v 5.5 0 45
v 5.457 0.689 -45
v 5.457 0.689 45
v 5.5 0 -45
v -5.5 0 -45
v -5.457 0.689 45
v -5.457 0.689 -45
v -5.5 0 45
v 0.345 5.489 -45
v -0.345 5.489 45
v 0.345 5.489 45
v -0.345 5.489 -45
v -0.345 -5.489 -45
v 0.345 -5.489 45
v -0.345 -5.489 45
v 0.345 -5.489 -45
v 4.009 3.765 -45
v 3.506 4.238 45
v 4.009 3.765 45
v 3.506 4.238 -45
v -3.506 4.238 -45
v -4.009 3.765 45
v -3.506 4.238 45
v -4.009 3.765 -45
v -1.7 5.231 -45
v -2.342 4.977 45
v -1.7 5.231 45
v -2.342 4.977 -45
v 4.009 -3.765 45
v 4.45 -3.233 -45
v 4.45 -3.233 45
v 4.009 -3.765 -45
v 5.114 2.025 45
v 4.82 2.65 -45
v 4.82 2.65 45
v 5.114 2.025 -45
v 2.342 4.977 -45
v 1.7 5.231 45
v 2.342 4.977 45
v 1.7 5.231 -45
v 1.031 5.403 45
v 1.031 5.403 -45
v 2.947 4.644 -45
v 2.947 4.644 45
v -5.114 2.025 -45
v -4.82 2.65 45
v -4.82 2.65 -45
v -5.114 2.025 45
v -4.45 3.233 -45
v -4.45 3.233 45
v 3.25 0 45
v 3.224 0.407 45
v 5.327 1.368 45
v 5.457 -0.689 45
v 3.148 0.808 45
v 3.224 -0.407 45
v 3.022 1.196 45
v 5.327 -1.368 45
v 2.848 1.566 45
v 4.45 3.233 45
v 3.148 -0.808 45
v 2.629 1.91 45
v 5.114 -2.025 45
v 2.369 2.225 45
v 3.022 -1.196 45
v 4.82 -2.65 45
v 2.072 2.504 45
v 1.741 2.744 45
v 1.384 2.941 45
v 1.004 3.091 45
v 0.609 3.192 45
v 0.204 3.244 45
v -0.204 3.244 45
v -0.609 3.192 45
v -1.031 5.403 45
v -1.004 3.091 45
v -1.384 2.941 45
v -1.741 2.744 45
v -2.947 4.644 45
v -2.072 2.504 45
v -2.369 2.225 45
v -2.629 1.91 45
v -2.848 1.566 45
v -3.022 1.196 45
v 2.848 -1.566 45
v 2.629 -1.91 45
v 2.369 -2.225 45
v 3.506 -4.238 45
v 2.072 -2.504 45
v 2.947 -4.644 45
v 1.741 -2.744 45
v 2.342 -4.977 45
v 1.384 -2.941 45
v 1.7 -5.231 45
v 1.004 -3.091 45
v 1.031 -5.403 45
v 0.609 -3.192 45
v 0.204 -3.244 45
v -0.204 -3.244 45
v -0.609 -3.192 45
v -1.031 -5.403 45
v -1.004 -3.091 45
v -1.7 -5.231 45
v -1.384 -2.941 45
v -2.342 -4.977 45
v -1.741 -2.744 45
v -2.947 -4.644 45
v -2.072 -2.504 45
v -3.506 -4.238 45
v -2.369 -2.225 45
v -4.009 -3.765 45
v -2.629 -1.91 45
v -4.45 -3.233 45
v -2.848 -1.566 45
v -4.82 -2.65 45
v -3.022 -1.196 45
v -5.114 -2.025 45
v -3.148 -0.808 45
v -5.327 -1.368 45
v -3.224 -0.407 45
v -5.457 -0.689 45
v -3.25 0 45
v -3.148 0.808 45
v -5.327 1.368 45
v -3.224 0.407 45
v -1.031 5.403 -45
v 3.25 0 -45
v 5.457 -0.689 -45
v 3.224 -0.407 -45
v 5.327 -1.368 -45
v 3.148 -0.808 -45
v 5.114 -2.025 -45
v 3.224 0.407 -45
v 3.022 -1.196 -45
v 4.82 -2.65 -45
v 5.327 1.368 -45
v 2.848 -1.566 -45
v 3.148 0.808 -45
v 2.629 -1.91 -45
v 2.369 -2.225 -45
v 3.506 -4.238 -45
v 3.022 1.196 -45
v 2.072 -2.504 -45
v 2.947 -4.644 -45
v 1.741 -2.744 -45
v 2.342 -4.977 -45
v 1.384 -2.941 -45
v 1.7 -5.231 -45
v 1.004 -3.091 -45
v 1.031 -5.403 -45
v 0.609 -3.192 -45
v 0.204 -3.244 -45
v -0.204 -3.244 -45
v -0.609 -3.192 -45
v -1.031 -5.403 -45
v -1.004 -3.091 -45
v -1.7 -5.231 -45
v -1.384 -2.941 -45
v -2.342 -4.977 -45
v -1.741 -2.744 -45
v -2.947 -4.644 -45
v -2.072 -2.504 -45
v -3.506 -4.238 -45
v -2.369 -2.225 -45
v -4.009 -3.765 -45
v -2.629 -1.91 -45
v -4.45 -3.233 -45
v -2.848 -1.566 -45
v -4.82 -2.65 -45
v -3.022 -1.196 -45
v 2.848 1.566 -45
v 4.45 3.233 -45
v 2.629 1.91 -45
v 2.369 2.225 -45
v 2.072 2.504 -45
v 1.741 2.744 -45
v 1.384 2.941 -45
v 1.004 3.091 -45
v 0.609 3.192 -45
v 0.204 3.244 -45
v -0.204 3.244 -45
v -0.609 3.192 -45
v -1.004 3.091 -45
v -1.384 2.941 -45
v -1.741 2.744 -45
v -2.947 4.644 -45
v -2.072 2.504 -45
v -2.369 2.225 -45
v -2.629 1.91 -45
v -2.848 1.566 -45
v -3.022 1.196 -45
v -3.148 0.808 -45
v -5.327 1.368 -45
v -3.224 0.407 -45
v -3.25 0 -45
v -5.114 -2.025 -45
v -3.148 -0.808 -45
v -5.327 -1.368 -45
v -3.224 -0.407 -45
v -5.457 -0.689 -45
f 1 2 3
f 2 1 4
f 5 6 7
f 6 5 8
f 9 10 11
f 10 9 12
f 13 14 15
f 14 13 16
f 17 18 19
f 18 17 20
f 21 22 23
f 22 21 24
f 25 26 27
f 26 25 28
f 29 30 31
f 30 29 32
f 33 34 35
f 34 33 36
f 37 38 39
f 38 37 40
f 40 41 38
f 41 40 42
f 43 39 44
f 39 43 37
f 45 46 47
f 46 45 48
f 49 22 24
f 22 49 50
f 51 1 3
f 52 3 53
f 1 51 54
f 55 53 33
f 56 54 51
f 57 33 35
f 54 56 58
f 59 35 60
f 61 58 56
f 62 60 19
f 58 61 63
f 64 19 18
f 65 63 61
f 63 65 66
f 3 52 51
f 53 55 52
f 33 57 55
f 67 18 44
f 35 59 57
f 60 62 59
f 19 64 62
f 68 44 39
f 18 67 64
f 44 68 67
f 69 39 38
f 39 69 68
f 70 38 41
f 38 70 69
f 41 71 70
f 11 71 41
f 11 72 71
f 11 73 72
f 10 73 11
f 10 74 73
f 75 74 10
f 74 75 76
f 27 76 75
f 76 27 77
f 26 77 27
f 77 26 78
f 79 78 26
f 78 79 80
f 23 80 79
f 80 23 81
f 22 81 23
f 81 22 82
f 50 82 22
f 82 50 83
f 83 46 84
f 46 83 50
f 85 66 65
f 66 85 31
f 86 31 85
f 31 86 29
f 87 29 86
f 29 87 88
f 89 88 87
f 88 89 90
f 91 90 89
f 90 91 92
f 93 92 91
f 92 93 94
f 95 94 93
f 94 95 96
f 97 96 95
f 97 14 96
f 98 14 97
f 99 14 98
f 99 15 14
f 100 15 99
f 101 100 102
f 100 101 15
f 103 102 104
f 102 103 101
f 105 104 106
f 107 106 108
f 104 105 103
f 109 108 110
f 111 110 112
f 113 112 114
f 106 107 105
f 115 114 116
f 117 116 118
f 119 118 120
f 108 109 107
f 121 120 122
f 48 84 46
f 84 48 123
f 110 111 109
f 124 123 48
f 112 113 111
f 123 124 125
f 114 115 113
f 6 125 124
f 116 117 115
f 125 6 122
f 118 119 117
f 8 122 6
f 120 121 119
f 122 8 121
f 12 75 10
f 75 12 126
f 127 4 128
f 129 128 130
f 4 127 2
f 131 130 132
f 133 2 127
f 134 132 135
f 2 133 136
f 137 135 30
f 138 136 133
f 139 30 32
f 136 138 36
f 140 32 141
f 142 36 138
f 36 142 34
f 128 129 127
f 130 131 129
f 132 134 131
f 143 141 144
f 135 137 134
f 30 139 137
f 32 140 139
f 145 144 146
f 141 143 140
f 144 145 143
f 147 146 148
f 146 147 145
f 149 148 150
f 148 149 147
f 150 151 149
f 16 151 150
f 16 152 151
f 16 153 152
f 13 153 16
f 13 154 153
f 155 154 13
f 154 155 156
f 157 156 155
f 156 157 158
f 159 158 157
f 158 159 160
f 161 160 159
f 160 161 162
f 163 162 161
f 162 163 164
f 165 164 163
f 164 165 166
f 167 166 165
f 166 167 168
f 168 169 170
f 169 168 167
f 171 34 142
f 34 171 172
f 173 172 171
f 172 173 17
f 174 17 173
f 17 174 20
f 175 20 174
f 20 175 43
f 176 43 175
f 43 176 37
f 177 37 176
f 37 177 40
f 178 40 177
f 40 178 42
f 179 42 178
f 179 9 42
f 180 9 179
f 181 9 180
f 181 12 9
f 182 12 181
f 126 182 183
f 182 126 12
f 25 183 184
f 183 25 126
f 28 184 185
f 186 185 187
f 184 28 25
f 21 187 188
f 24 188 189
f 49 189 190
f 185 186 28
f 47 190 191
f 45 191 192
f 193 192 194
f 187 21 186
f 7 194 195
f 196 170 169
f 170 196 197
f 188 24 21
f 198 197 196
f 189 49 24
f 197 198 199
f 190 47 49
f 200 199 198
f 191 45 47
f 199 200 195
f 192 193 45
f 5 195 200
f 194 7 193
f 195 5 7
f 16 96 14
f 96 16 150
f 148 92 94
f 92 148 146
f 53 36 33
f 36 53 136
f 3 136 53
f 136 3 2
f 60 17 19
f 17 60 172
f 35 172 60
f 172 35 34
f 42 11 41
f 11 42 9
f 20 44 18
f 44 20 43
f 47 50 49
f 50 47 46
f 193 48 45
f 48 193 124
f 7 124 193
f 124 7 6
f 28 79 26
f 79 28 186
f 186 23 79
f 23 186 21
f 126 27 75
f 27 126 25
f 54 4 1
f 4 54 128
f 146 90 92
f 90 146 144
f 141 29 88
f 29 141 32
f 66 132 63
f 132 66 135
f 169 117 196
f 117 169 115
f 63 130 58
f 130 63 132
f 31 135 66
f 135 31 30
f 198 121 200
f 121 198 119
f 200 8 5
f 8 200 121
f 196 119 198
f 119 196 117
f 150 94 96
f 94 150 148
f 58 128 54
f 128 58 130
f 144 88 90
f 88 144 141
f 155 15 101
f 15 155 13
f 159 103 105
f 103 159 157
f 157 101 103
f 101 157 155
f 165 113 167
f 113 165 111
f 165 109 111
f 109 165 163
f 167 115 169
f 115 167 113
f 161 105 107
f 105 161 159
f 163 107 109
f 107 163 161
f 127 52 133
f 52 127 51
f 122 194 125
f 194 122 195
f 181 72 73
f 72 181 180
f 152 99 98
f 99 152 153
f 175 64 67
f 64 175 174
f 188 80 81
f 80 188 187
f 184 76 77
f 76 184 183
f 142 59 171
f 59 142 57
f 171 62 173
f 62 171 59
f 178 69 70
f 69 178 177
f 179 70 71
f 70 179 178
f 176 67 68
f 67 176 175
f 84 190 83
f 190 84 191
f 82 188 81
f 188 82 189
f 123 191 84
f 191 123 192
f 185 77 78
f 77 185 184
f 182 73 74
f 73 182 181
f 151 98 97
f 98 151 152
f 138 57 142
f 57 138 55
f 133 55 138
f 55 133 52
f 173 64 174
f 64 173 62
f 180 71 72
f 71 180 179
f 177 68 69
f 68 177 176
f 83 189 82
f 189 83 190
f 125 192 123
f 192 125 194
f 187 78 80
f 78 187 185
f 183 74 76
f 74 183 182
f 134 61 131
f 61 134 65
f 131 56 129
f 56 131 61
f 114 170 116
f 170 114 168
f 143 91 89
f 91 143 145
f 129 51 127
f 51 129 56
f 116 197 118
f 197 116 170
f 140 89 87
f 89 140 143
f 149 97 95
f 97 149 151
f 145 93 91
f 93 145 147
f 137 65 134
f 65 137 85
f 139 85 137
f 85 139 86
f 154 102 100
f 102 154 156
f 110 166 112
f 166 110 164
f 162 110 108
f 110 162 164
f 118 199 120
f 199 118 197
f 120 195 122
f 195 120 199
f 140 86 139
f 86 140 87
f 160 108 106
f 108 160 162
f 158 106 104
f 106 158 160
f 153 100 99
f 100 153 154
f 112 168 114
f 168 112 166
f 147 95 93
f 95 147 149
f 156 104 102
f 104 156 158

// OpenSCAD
$fn = 50;


difference() {
	union() {
		translate(v = [0, 0, -45.0000000000]) {
			cylinder(h = 90, r = 5.5000000000);
		}
	}
	union() {
		translate(v = [0, 0, -100.0000000000]) {
			cylinder(h = 200, r = 3.2500000000);
		}
	}
}
